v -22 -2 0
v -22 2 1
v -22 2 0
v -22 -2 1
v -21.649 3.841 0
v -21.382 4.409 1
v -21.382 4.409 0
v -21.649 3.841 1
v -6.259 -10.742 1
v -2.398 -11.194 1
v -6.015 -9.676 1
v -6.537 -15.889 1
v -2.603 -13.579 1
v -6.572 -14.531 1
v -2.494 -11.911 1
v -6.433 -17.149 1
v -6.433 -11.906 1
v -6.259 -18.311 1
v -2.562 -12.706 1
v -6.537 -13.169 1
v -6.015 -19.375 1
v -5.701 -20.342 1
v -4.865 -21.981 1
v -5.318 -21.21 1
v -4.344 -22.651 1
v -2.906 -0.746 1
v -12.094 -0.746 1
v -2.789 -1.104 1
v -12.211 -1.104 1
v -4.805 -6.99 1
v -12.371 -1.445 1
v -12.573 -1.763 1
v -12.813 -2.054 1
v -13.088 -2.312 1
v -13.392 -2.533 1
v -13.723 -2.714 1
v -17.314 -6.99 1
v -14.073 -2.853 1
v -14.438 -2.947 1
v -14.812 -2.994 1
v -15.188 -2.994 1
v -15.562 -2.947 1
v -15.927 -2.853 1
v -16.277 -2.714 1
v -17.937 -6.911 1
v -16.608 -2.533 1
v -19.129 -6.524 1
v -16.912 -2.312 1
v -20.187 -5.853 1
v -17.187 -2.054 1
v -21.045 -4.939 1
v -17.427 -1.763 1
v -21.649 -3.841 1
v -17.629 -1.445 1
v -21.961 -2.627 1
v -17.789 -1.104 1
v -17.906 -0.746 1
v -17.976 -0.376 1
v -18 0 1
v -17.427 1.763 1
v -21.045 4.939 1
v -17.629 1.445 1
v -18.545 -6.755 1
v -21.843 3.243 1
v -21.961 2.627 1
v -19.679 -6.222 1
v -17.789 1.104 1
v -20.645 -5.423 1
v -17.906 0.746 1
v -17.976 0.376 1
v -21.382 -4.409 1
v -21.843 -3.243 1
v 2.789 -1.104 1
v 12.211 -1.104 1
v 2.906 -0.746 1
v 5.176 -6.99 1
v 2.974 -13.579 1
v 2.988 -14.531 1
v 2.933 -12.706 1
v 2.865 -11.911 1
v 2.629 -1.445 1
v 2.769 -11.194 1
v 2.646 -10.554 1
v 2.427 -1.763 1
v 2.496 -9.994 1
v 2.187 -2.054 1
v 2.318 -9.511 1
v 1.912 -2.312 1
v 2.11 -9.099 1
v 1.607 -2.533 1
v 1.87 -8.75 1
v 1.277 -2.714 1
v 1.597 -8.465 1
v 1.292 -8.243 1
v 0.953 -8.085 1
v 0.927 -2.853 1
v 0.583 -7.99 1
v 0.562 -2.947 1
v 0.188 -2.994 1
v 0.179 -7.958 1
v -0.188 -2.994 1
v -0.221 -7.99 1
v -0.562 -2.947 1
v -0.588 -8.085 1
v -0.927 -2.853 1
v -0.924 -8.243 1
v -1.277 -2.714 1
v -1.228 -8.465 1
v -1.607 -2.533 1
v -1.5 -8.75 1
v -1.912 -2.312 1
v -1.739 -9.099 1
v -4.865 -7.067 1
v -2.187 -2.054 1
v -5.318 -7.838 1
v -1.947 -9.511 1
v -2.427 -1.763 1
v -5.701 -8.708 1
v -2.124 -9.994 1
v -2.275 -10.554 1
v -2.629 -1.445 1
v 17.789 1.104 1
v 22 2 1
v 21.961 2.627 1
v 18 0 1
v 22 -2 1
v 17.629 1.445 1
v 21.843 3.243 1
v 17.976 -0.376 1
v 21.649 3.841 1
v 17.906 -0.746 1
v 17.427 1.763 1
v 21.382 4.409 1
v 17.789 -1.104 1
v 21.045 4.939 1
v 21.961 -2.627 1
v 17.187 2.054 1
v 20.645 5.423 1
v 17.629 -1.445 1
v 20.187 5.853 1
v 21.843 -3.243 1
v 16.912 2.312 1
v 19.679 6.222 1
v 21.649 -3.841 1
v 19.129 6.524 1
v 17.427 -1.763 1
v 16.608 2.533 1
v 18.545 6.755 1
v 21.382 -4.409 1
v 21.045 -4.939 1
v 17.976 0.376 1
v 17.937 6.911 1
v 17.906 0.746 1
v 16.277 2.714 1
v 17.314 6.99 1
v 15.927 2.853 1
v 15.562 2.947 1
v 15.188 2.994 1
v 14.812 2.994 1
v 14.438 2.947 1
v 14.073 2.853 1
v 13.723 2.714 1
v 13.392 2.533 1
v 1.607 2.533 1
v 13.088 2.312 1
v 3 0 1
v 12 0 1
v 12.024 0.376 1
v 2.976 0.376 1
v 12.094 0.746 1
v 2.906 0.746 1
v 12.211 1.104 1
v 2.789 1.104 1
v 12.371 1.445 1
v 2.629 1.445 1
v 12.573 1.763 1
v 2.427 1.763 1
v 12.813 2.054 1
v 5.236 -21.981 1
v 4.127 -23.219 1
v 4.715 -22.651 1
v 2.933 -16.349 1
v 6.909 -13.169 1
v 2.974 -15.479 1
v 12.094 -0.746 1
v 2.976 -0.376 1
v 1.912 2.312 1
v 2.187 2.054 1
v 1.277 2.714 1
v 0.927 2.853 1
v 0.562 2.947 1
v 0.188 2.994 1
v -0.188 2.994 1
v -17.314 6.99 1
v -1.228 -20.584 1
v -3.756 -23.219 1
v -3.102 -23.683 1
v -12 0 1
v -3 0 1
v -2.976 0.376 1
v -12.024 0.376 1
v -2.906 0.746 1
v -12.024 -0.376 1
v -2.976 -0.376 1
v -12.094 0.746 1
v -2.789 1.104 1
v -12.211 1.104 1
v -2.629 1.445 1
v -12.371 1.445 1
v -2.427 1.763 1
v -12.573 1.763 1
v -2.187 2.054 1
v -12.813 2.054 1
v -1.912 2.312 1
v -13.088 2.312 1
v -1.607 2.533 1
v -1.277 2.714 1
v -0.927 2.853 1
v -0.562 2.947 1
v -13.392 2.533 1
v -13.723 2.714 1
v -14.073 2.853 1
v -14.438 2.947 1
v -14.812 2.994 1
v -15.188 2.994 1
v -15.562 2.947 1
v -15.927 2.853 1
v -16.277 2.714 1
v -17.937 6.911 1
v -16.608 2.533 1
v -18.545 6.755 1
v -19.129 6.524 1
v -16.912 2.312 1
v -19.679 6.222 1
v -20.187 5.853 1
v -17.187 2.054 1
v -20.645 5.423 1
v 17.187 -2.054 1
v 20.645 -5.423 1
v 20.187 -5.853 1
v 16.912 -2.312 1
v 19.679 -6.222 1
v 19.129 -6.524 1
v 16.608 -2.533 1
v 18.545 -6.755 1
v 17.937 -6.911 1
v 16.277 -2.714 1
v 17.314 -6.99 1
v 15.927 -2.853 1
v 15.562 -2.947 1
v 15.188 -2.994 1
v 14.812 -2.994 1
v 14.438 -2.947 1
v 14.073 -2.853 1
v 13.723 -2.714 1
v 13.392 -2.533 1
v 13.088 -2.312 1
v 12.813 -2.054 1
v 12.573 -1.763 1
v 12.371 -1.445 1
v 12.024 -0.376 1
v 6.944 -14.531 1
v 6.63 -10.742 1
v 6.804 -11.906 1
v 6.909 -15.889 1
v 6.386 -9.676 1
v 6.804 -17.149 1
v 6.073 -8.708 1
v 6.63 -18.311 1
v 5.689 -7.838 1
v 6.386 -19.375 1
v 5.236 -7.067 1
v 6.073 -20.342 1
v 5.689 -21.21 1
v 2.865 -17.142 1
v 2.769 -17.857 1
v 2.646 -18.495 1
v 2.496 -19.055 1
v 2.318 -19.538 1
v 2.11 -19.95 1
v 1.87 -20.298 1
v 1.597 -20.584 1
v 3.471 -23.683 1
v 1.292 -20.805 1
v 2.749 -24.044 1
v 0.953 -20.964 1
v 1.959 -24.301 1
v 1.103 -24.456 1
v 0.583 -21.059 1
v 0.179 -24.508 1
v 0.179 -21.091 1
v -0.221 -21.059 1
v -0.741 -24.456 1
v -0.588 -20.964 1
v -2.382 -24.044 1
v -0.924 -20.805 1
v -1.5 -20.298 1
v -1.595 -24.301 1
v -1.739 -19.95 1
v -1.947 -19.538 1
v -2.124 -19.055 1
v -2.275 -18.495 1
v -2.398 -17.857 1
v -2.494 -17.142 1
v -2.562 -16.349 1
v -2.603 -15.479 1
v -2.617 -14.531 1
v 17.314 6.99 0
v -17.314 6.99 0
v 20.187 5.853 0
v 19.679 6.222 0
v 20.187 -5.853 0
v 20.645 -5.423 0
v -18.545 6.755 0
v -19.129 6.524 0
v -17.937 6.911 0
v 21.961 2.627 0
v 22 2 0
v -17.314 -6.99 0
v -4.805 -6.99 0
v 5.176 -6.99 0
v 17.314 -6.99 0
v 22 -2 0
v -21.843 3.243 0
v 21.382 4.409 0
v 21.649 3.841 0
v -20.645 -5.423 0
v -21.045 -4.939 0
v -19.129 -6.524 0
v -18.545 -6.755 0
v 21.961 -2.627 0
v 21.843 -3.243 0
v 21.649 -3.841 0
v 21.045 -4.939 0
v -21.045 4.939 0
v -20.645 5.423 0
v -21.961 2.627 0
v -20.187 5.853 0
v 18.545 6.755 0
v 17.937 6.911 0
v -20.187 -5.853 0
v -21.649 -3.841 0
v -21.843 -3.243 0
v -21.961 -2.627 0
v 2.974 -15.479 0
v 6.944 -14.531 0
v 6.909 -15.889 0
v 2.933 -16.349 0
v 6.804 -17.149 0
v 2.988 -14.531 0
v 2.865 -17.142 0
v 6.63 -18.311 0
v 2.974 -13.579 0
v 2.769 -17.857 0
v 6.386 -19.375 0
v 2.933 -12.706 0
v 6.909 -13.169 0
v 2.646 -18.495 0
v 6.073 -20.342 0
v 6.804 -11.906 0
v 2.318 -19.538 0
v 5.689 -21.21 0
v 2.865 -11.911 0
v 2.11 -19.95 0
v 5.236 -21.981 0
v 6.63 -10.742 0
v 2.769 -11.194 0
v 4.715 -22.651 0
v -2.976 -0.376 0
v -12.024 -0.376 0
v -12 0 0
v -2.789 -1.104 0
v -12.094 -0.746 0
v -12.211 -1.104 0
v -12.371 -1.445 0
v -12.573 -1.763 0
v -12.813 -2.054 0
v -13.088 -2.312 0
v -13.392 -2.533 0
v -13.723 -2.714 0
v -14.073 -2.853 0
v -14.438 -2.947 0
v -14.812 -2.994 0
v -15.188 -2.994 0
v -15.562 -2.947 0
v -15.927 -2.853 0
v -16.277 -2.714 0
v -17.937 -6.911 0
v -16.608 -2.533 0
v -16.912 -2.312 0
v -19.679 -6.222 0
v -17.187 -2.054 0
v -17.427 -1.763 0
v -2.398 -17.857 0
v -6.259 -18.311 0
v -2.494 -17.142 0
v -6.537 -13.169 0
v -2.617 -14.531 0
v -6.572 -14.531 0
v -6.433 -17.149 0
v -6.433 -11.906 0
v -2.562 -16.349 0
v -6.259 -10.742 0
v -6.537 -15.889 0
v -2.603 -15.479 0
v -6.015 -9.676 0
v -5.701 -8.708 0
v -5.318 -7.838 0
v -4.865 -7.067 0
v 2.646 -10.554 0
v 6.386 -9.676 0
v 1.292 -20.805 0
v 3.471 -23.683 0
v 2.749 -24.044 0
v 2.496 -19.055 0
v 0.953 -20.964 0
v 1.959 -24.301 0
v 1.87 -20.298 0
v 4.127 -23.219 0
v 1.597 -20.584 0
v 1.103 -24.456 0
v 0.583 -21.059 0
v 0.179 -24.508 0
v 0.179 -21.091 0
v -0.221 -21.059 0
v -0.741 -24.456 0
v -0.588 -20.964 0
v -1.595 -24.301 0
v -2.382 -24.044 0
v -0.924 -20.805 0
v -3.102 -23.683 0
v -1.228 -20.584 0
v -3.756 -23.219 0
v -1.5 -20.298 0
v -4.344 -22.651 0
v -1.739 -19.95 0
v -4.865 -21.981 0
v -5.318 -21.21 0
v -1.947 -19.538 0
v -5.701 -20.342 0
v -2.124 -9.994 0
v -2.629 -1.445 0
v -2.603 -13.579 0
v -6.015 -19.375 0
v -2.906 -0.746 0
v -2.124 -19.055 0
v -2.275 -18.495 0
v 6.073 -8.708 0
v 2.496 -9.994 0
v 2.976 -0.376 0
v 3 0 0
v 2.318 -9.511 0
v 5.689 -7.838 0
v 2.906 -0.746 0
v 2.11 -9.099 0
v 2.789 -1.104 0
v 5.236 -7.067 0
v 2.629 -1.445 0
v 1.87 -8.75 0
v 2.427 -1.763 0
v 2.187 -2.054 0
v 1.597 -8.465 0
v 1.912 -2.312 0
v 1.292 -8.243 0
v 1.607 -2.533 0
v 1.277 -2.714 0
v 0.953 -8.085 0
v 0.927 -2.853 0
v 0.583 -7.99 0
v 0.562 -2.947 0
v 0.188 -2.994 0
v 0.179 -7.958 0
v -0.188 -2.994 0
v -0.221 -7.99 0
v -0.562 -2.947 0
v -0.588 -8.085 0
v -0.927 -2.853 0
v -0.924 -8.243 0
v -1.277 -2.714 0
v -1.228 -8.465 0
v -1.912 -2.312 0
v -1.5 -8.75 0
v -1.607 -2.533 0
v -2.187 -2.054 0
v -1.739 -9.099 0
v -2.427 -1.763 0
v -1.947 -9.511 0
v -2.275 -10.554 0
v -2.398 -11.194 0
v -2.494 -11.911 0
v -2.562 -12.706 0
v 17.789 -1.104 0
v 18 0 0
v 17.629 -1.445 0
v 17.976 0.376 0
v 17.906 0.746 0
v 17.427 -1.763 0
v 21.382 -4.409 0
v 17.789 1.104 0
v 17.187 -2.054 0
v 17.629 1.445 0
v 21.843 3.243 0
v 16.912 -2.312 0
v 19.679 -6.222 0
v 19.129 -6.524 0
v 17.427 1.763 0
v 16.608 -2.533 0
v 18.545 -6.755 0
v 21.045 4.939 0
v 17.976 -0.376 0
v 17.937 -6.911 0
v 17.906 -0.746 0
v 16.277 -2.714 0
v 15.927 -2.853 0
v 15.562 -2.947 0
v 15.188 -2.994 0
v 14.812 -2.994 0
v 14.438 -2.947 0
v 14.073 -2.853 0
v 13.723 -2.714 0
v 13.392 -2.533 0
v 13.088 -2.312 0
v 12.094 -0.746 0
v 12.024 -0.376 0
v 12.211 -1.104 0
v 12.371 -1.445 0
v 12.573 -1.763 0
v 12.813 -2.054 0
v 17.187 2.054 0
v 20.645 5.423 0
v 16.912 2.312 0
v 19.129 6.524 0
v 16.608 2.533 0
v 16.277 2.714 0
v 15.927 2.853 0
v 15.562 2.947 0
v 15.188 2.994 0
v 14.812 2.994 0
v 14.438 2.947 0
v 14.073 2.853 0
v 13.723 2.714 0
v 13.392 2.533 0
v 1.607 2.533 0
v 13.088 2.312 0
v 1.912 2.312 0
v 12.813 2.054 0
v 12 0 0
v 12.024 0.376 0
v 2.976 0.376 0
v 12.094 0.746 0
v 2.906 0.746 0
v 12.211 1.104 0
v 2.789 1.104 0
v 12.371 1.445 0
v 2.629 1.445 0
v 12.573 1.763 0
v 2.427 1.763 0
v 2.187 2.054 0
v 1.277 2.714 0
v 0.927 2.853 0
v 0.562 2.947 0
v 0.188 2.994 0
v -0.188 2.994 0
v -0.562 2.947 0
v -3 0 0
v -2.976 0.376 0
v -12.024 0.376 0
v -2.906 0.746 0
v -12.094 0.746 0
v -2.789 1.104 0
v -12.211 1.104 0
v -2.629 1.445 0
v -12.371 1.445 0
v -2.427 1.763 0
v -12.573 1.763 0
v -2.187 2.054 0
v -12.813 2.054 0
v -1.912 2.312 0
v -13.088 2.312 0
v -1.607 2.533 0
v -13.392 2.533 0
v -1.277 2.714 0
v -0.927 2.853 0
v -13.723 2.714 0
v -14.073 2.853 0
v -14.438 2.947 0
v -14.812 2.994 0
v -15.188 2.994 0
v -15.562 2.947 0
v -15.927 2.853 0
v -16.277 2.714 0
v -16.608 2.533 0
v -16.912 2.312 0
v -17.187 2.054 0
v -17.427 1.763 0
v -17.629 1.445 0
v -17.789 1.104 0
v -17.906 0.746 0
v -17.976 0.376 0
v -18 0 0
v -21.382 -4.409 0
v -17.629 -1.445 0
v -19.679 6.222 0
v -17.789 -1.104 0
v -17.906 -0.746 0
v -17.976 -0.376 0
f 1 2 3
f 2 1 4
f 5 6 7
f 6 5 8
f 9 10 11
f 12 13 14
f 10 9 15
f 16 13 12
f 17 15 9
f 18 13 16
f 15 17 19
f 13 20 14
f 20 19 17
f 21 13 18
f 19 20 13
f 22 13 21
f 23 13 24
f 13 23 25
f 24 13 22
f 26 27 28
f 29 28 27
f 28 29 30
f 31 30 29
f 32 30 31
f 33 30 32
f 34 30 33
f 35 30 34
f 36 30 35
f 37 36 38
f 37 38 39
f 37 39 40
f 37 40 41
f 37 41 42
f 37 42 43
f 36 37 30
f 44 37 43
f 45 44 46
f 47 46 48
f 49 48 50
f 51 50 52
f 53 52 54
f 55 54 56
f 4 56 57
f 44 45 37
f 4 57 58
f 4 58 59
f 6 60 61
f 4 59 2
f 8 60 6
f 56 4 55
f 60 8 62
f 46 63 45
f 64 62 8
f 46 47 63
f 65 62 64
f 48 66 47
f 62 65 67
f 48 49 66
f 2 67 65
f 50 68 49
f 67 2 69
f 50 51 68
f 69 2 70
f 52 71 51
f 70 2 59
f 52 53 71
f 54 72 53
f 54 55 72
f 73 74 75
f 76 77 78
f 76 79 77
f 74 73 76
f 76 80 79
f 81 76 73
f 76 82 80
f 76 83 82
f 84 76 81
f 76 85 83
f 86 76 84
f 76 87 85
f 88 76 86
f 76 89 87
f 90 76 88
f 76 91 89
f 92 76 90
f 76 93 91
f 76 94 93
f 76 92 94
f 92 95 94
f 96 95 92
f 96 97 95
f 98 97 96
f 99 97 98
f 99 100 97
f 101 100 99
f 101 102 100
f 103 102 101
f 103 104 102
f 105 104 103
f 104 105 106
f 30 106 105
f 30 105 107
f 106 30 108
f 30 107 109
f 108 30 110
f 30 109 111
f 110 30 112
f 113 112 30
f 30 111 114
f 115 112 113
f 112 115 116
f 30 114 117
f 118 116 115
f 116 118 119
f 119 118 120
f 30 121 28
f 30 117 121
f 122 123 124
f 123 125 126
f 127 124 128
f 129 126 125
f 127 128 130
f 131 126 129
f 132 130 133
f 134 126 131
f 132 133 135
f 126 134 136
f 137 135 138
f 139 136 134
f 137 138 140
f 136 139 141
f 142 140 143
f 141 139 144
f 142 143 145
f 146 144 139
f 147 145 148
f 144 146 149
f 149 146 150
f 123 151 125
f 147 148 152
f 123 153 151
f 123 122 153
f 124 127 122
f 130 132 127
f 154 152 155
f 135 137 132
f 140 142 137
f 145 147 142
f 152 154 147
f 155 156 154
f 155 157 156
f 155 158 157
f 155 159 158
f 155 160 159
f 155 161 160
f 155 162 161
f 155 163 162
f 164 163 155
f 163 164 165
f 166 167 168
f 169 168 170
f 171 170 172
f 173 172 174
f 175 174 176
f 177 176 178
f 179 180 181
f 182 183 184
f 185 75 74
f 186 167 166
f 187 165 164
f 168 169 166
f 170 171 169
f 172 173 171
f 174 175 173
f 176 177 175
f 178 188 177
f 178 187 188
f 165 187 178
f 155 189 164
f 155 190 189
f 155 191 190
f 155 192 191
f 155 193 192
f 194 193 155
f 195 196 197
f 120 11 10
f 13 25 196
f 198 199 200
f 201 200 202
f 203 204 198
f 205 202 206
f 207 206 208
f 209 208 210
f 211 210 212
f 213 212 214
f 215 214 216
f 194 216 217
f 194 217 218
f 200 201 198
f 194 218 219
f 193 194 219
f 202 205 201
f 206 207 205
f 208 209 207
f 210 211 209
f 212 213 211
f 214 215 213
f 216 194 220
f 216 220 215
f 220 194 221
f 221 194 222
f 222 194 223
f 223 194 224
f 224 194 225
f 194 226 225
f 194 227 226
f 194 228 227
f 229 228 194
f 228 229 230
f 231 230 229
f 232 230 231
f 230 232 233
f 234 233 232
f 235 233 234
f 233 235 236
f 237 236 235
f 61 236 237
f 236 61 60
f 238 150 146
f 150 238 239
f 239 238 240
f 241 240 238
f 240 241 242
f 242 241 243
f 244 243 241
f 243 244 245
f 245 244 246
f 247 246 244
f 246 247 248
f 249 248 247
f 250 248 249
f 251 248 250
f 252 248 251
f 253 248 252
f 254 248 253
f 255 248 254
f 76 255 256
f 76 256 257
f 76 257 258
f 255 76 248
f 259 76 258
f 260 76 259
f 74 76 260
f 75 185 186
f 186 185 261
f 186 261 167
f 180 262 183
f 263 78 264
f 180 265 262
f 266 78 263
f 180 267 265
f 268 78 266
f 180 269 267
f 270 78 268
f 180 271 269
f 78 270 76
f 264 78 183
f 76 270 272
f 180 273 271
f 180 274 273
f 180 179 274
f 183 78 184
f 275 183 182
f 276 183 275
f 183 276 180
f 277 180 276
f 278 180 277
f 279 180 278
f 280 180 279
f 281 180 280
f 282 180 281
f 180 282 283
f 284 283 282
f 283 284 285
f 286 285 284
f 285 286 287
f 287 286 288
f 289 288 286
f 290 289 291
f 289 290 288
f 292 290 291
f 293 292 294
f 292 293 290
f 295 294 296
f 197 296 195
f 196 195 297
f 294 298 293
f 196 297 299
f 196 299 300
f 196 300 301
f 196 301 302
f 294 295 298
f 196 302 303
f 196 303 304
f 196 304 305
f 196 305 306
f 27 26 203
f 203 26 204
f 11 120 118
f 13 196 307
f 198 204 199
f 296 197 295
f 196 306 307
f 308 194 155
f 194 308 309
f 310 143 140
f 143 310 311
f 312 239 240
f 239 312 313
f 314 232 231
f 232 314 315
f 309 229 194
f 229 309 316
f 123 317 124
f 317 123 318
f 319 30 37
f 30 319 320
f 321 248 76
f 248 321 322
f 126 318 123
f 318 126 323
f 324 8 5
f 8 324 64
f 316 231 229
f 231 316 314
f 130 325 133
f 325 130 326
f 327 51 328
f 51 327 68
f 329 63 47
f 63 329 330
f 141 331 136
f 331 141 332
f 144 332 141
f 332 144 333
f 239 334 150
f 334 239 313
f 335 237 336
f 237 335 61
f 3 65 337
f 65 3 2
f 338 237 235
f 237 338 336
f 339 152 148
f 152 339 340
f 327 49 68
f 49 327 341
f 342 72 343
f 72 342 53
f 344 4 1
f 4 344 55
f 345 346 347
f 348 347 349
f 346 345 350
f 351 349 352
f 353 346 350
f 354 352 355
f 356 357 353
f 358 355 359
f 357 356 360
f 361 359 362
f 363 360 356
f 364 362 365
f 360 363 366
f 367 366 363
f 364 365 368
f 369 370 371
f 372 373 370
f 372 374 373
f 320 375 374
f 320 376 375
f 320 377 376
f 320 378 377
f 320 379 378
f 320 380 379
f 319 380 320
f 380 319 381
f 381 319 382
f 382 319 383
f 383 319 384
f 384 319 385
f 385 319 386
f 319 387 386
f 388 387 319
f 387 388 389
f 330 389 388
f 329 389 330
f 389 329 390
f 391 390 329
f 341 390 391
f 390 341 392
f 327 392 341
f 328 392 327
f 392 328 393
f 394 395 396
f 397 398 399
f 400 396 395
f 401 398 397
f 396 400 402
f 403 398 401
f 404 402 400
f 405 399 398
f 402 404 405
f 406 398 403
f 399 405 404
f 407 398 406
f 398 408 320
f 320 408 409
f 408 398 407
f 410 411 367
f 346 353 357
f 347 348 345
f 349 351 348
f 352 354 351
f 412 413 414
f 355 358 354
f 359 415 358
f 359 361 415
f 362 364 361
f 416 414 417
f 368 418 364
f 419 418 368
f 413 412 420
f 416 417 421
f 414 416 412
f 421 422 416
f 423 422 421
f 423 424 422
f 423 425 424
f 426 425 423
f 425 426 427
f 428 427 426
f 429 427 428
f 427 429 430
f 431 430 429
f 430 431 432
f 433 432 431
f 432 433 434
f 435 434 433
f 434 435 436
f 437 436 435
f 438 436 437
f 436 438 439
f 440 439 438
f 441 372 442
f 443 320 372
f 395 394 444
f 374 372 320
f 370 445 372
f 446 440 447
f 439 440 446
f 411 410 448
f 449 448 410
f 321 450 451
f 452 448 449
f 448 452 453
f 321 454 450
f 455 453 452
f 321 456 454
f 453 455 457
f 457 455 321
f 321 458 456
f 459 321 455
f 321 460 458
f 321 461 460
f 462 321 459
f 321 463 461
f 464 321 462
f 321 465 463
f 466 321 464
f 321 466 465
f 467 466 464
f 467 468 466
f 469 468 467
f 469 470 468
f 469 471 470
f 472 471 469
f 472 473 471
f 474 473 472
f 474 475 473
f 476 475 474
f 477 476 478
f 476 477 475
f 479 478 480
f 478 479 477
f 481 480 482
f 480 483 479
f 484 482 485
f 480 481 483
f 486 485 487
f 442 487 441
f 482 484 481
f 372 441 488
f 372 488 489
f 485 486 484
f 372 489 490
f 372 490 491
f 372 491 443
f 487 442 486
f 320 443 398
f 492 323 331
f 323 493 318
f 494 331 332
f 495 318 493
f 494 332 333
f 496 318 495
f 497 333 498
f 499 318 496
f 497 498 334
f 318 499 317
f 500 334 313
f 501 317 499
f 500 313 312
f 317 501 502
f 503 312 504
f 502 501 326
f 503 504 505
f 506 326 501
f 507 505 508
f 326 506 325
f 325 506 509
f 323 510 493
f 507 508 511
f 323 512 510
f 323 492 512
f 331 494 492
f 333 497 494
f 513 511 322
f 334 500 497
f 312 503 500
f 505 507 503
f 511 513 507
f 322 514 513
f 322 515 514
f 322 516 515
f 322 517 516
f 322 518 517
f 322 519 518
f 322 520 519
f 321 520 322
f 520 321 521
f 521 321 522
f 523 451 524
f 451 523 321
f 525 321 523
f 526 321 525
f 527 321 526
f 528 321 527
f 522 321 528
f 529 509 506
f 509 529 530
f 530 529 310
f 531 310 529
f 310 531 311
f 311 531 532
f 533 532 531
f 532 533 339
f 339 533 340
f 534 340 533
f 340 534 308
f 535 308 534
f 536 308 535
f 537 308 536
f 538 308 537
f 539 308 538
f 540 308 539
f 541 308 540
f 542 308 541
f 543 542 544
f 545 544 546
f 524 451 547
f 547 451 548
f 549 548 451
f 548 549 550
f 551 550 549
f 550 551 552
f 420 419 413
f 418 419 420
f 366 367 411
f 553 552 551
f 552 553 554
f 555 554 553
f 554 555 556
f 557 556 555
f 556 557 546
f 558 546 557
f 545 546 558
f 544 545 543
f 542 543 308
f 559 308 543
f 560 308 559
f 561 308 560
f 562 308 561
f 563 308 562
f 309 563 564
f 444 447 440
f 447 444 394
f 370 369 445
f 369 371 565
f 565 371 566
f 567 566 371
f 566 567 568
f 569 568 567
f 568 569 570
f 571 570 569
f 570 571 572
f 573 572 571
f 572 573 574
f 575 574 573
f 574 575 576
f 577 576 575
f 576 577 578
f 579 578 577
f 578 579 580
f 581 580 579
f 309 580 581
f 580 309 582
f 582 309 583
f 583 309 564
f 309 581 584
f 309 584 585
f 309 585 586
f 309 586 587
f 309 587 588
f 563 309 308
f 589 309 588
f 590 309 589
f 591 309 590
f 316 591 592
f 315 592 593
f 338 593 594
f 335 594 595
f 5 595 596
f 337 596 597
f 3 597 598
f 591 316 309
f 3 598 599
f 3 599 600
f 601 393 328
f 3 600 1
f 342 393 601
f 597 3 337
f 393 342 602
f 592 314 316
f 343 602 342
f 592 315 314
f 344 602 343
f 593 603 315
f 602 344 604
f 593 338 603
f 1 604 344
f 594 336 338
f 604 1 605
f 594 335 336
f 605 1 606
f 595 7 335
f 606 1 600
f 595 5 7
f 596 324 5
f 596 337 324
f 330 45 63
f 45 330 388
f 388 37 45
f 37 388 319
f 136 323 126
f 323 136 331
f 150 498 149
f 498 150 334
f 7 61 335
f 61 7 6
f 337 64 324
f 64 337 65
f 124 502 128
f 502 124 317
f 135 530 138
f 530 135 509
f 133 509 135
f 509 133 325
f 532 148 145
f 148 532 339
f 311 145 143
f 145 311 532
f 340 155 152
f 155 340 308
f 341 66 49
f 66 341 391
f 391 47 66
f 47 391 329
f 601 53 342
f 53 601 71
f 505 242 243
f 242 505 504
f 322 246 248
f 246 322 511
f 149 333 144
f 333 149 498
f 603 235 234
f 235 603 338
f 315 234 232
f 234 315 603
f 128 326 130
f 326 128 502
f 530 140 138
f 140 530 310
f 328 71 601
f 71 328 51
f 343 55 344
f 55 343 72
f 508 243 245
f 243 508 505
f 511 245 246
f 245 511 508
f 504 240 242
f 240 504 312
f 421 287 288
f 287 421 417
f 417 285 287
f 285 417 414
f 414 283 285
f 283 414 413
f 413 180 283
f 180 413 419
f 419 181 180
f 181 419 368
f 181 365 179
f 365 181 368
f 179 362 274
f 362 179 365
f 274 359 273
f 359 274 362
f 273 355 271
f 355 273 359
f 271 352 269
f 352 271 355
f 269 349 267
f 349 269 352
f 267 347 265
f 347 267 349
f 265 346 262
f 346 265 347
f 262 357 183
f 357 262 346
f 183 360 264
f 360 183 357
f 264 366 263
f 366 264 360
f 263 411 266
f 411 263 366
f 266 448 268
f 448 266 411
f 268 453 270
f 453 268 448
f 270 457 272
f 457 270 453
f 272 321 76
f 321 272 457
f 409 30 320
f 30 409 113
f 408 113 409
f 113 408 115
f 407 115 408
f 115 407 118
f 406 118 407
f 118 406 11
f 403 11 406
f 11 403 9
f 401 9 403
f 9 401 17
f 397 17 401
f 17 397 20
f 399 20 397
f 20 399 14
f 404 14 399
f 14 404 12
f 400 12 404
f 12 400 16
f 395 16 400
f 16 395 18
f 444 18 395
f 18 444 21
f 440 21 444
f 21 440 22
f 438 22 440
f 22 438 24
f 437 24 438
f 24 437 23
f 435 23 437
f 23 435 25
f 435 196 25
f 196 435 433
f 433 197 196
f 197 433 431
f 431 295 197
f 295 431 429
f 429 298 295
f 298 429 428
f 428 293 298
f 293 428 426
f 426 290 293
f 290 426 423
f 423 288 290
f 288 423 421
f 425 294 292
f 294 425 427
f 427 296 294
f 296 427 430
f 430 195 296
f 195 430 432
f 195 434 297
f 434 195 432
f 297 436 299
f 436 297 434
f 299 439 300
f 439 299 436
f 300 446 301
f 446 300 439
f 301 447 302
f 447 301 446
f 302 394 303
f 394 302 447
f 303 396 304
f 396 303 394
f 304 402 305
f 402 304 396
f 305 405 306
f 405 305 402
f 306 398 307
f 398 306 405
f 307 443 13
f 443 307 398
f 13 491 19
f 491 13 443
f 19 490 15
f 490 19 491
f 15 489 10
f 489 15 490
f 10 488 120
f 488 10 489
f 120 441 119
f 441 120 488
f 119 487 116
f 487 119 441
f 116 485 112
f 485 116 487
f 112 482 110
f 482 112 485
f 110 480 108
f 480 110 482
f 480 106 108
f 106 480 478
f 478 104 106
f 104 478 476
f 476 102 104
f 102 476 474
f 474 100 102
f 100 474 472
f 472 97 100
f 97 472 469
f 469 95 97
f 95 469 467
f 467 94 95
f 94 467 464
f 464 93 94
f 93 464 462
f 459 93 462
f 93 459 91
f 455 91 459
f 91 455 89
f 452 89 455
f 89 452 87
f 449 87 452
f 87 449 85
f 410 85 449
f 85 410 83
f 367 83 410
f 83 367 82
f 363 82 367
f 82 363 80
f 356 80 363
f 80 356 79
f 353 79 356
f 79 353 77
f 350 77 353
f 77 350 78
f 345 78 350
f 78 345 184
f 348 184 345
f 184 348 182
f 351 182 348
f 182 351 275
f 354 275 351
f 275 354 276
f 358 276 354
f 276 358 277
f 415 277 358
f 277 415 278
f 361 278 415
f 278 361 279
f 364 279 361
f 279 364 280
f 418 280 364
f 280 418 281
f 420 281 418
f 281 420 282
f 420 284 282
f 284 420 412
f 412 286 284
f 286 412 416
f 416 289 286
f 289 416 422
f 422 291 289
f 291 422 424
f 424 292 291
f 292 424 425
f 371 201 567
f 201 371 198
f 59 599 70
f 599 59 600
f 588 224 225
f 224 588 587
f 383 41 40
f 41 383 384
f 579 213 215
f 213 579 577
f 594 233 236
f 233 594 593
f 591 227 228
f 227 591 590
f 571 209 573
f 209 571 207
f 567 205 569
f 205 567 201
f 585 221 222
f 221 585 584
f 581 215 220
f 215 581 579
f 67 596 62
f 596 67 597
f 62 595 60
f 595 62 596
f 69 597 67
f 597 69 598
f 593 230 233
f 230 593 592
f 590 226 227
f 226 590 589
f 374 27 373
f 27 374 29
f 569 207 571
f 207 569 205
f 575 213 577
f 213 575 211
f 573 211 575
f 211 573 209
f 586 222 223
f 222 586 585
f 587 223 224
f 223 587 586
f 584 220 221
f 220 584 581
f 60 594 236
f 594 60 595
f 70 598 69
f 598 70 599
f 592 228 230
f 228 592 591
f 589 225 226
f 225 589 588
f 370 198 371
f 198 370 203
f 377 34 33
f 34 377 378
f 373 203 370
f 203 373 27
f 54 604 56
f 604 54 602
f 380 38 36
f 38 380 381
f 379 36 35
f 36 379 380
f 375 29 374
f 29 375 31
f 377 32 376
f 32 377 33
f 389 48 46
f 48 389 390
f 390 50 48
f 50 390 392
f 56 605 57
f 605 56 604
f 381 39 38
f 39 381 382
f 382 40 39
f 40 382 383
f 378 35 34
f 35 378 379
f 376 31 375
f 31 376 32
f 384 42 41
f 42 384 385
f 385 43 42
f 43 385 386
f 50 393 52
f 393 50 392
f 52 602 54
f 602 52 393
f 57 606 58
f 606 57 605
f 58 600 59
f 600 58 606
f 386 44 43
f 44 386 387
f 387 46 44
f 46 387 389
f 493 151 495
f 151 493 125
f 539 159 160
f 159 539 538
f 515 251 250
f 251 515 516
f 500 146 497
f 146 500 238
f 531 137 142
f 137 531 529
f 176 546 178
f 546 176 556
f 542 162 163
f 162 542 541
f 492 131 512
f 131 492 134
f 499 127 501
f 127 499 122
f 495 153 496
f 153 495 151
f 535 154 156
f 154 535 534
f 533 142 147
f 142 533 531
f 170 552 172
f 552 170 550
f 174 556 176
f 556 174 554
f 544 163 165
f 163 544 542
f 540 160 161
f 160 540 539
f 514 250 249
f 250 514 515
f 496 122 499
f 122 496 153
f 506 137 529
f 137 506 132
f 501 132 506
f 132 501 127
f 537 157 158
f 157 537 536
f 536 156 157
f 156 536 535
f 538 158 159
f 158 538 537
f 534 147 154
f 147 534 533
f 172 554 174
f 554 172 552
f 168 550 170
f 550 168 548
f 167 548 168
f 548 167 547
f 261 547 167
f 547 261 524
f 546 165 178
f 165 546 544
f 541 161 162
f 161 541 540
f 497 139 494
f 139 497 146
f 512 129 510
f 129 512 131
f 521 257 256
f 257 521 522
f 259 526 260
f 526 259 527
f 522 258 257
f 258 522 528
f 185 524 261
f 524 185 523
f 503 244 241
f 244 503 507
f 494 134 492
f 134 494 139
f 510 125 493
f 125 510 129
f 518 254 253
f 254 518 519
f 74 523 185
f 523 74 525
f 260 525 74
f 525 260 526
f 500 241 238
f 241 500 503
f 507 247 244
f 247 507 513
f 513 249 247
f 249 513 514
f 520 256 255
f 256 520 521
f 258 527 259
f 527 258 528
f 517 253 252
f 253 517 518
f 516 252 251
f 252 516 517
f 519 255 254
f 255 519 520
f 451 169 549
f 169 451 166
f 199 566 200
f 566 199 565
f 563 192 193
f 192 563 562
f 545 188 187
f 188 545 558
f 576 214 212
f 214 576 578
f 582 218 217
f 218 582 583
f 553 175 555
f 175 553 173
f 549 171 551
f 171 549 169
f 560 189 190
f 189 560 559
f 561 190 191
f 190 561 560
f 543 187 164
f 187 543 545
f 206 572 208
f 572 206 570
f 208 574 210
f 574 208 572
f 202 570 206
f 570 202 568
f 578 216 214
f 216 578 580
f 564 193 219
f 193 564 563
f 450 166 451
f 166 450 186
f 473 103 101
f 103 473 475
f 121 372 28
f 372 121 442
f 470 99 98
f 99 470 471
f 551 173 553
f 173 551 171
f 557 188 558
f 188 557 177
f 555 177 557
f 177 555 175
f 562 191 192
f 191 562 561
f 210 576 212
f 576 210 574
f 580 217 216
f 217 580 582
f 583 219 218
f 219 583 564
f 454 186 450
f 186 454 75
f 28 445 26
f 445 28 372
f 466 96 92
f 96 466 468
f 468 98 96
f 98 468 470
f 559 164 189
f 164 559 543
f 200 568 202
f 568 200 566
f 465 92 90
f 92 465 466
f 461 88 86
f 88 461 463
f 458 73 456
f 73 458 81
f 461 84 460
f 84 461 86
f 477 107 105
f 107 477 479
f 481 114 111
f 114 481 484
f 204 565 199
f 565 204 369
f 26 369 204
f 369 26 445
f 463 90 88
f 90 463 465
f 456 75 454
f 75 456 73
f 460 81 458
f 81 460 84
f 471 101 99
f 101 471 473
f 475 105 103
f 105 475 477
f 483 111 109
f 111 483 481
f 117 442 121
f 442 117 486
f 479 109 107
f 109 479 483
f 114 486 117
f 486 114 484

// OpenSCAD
$fn = 50;


difference() {
	union() {
		translate(v = [0, 0, 0]) {
			rotate(a = [0, 0, 0]) {
				hull() {
					translate(v = [-17.0000000000, 2.0000000000, 0]) {
						rotate(a = [0, 0, 0]) {
							translate(v = [0, 0, 0]) {
								rotate(a = [0, 0, 0]) {
									cylinder(h = 1, r = 5);
								}
							}
						}
					}
					translate(v = [17.0000000000, 2.0000000000, 0]) {
						rotate(a = [0, 0, 0]) {
							translate(v = [0, 0, 0]) {
								rotate(a = [0, 0, 0]) {
									cylinder(h = 1, r = 5);
								}
							}
						}
					}
					translate(v = [-17.0000000000, -2.0000000000, 0]) {
						rotate(a = [0, 0, 0]) {
							translate(v = [0, 0, 0]) {
								rotate(a = [0, 0, 0]) {
									cylinder(h = 1, r = 5);
								}
							}
						}
					}
					translate(v = [17.0000000000, -2.0000000000, 0]) {
						rotate(a = [0, 0, 0]) {
							translate(v = [0, 0, 0]) {
								rotate(a = [0, 0, 0]) {
									cylinder(h = 1, r = 5);
								}
							}
						}
					}
				}
			}
		}
		translate(v = [0, -5, 0]) {
			rotate(a = [0, 0, 0]) {
				linear_extrude(height = 1) {
					text(font = "DejaVu Sans Mono:style=Bold", halign = "center", size = 19.0000000000, text = "O", valign = "top");
				}
			}
		}
	}
	union() {
		translate(v = [-15.0000000000, 0.0000000000, -125.0000000000]) {
			rotate(a = [0, 0, 0]) {
				cylinder(h = 250, r = 3.0000000000);
			}
		}
		translate(v = [15.0000000000, 0.0000000000, -125.0000000000]) {
			rotate(a = [0, 0, 0]) {
				cylinder(h = 250, r = 3.0000000000);
			}
		}
		translate(v = [15.0000000000, 0.0000000000, -125.0000000000]) {
			rotate(a = [0, 0, 0]) {
				cylinder(h = 250, r = 3.0000000000);
			}
		}
		translate(v = [0, 0, -125.0000000000]) {
			rotate(a = [0, 0, 0]) {
				cylinder(h = 250, r = 3.0000000000);
			}
		}
	}
}
